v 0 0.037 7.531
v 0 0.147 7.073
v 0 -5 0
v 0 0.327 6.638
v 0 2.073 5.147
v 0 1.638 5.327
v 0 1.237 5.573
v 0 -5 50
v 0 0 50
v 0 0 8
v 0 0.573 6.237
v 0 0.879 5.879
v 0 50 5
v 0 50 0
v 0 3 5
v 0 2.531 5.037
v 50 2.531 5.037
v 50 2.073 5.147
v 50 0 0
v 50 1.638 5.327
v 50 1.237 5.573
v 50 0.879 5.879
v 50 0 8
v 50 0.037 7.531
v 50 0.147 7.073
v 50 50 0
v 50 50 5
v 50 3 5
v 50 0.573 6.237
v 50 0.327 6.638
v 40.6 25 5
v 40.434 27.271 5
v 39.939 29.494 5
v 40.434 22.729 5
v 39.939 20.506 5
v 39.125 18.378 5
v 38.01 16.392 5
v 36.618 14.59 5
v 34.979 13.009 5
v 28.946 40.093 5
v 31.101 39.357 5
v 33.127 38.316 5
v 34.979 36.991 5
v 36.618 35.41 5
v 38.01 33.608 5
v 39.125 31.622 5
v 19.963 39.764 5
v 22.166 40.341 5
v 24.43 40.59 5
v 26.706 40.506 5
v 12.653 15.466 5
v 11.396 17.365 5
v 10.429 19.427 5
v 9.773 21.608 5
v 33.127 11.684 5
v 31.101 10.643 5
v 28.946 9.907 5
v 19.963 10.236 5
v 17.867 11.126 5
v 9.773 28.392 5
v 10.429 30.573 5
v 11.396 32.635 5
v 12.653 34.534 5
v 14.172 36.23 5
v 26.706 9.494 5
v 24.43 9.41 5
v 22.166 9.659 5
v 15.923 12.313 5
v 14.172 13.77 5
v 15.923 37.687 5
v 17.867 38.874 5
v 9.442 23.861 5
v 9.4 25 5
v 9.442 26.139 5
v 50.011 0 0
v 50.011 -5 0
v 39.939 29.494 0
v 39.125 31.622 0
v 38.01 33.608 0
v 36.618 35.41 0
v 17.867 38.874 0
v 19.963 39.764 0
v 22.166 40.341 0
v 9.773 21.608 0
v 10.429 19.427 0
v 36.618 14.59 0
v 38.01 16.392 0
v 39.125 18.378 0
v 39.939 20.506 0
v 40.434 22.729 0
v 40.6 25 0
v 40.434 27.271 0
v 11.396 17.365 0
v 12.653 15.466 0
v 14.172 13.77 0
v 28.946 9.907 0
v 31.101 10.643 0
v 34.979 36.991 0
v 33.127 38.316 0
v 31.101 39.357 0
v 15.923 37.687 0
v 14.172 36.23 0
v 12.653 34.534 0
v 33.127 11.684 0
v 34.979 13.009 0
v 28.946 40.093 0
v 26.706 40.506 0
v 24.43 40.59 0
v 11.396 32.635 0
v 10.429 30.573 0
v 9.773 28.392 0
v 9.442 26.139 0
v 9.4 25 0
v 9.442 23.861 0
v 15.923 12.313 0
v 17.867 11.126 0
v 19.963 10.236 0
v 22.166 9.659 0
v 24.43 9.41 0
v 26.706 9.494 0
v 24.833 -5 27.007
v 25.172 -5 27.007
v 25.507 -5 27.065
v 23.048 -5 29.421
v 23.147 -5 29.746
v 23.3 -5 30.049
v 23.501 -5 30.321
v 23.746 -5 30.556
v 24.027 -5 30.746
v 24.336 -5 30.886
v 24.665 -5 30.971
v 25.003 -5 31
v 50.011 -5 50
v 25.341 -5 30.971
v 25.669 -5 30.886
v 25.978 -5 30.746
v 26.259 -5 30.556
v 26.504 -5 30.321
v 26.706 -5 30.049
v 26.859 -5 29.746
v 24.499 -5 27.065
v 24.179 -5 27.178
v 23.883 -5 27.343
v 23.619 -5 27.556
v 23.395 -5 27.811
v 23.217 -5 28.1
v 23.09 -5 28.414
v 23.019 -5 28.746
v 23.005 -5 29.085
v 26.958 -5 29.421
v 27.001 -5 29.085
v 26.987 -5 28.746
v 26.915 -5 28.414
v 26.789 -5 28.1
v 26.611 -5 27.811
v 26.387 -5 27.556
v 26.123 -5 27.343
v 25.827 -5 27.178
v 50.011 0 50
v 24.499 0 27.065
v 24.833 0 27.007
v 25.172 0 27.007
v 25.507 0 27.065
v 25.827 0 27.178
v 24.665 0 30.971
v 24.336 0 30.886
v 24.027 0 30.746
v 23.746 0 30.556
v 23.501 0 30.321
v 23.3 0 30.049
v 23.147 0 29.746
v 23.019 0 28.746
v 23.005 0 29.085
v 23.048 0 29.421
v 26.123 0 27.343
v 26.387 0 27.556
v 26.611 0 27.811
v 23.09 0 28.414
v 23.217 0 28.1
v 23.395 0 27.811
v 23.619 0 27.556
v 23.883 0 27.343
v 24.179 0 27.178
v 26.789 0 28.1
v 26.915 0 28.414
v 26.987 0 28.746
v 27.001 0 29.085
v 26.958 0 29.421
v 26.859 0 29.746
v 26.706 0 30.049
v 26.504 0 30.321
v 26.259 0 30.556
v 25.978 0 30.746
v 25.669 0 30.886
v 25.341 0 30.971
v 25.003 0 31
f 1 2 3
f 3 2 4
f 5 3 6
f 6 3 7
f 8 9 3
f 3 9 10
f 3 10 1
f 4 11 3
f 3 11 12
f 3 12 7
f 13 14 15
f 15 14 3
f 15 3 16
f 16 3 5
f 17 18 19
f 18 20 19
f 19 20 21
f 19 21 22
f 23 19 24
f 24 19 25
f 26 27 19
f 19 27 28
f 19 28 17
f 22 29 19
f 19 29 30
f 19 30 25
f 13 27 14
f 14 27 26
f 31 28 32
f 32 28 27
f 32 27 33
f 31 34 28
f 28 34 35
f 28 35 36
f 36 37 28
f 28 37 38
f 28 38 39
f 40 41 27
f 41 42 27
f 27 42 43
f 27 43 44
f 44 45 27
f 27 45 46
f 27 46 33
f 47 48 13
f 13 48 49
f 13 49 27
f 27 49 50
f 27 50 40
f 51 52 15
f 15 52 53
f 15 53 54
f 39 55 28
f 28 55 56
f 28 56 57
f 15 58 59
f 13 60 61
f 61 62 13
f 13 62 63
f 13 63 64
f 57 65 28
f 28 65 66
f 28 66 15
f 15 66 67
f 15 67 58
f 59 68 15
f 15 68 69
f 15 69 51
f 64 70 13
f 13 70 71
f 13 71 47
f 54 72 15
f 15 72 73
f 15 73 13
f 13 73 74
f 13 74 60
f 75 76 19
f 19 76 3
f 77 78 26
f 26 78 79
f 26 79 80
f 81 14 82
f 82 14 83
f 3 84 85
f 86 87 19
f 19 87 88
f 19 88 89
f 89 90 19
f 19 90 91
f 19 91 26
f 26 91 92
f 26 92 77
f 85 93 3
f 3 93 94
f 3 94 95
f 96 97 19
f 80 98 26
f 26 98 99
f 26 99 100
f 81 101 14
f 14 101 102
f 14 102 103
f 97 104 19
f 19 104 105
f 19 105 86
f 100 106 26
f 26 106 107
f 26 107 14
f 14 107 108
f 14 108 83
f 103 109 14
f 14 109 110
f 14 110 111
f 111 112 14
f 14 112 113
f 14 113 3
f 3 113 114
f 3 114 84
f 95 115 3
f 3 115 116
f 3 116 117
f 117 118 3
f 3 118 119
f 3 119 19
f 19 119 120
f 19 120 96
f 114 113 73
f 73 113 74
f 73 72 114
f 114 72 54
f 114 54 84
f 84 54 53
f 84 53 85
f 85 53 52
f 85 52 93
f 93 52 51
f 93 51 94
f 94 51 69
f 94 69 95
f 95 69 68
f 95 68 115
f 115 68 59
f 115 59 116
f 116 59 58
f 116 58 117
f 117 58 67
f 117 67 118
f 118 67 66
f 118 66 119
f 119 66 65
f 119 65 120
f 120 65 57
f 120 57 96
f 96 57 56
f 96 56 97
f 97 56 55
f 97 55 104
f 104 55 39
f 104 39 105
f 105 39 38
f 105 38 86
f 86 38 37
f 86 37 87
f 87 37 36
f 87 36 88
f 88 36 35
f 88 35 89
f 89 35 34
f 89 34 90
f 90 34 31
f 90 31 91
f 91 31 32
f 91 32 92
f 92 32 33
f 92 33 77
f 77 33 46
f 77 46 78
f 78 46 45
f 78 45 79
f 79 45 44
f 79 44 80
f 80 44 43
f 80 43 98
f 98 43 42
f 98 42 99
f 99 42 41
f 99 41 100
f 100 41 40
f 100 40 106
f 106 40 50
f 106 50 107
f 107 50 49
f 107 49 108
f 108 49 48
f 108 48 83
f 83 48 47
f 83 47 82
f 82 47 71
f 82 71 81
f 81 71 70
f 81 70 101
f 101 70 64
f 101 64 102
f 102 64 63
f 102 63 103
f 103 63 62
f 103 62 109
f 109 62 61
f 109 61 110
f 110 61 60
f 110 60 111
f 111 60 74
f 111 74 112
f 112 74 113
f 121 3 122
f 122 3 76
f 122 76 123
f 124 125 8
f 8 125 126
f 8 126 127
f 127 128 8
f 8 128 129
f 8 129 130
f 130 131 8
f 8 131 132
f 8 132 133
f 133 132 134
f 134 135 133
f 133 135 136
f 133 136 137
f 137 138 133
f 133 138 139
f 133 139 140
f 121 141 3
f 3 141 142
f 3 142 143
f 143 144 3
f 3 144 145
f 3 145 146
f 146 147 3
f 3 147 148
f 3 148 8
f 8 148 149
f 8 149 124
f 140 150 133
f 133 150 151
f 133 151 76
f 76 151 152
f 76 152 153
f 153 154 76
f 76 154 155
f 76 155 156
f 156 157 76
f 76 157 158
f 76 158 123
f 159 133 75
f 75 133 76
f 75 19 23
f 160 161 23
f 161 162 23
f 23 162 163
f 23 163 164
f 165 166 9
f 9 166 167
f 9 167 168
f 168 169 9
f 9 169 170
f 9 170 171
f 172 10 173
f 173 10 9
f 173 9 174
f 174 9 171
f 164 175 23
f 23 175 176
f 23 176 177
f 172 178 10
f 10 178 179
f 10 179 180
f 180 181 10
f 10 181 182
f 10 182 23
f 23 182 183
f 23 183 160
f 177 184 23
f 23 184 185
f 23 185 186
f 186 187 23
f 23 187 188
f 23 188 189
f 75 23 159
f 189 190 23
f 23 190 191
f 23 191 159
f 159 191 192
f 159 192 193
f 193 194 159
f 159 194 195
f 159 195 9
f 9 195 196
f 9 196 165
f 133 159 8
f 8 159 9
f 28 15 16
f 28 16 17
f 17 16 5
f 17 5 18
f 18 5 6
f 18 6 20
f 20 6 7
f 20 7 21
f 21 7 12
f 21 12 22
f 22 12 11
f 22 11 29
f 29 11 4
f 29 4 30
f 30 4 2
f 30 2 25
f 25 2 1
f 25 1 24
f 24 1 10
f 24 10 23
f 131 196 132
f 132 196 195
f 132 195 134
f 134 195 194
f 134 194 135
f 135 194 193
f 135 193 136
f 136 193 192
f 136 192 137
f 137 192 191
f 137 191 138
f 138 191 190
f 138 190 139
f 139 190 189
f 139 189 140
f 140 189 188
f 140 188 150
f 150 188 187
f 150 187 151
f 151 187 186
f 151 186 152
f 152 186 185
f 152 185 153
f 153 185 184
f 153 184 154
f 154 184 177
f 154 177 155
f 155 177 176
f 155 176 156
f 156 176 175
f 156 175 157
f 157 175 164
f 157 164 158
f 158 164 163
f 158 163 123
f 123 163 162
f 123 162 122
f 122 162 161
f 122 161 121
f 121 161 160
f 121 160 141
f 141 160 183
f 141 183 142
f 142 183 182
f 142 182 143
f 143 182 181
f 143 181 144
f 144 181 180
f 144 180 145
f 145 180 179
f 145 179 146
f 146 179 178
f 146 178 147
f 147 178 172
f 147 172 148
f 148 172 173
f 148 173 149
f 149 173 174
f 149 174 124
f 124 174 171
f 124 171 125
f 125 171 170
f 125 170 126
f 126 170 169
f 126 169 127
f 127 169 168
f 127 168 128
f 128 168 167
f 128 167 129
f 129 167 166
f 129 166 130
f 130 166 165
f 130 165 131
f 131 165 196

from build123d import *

# Parameters (mm, degrees)
ESBO_O1_W                  = 50
ESBO_O1_H                  = 50
RESSALTO_EXTRUS_O1_DEPTH   = 5
ESBO_O2_R                  = 15.6
CORTE_EXTRUS_O1_DEPTH      = 8
CORTE_EXTRUS_O1_DEPTH_BACK = 14
ESBO_O3_W                  = 50.011024838
ESBO_O3_H                  = 5
RESSALTO_EXTRUS_O2_DEPTH   = 50
FILETE1_R                  = 3
ESBO_O5_R                  = 2
CORTE_EXTRUS_O4_DEPTH      = 14


with BuildPart() as part:
    # Esboço1 → Ressalto-extrusão1 (new body)
    with BuildSketch(Plane.XY):
        with Locations((25, 25)):
            Rectangle(ESBO_O1_W, ESBO_O1_H)
    extrude(amount=RESSALTO_EXTRUS_O1_DEPTH)

    # Esboço2 → Corte-extrusão1 (cut, two sides)
    with BuildSketch(Plane.XY) as corte_extrus_o1_sk:
        with Locations((25, 25)):
            Circle(ESBO_O2_R)
    extrude(amount=CORTE_EXTRUS_O1_DEPTH, mode=Mode.SUBTRACT)
    extrude(corte_extrus_o1_sk.sketch, amount=-CORTE_EXTRUS_O1_DEPTH_BACK, mode=Mode.SUBTRACT)

    # Esboço3 → Ressalto-extrusão2 (add)
    with BuildSketch(Plane.XY):
        with Locations((25.005512419, -2.5)):
            Rectangle(ESBO_O3_W, ESBO_O3_H)
    extrude(amount=RESSALTO_EXTRUS_O2_DEPTH)

    # Filete1
    filete1_edges = [part.edges().sort_by_distance(p)[0] for p in [
        (25, 0, 5),
    ]]
    fillet(filete1_edges, radius=FILETE1_R)

    # Esboço5 → Corte-extrusão4 (cut)
    with BuildSketch(Plane(origin=(0, 0, 0), x_dir=(1, 0, 0), z_dir=(0, 1, 0))):
        with Locations((25.002756209, -29)):
            Circle(ESBO_O5_R)
    extrude(amount=-CORTE_EXTRUS_O4_DEPTH, mode=Mode.SUBTRACT)


solid = part.part
